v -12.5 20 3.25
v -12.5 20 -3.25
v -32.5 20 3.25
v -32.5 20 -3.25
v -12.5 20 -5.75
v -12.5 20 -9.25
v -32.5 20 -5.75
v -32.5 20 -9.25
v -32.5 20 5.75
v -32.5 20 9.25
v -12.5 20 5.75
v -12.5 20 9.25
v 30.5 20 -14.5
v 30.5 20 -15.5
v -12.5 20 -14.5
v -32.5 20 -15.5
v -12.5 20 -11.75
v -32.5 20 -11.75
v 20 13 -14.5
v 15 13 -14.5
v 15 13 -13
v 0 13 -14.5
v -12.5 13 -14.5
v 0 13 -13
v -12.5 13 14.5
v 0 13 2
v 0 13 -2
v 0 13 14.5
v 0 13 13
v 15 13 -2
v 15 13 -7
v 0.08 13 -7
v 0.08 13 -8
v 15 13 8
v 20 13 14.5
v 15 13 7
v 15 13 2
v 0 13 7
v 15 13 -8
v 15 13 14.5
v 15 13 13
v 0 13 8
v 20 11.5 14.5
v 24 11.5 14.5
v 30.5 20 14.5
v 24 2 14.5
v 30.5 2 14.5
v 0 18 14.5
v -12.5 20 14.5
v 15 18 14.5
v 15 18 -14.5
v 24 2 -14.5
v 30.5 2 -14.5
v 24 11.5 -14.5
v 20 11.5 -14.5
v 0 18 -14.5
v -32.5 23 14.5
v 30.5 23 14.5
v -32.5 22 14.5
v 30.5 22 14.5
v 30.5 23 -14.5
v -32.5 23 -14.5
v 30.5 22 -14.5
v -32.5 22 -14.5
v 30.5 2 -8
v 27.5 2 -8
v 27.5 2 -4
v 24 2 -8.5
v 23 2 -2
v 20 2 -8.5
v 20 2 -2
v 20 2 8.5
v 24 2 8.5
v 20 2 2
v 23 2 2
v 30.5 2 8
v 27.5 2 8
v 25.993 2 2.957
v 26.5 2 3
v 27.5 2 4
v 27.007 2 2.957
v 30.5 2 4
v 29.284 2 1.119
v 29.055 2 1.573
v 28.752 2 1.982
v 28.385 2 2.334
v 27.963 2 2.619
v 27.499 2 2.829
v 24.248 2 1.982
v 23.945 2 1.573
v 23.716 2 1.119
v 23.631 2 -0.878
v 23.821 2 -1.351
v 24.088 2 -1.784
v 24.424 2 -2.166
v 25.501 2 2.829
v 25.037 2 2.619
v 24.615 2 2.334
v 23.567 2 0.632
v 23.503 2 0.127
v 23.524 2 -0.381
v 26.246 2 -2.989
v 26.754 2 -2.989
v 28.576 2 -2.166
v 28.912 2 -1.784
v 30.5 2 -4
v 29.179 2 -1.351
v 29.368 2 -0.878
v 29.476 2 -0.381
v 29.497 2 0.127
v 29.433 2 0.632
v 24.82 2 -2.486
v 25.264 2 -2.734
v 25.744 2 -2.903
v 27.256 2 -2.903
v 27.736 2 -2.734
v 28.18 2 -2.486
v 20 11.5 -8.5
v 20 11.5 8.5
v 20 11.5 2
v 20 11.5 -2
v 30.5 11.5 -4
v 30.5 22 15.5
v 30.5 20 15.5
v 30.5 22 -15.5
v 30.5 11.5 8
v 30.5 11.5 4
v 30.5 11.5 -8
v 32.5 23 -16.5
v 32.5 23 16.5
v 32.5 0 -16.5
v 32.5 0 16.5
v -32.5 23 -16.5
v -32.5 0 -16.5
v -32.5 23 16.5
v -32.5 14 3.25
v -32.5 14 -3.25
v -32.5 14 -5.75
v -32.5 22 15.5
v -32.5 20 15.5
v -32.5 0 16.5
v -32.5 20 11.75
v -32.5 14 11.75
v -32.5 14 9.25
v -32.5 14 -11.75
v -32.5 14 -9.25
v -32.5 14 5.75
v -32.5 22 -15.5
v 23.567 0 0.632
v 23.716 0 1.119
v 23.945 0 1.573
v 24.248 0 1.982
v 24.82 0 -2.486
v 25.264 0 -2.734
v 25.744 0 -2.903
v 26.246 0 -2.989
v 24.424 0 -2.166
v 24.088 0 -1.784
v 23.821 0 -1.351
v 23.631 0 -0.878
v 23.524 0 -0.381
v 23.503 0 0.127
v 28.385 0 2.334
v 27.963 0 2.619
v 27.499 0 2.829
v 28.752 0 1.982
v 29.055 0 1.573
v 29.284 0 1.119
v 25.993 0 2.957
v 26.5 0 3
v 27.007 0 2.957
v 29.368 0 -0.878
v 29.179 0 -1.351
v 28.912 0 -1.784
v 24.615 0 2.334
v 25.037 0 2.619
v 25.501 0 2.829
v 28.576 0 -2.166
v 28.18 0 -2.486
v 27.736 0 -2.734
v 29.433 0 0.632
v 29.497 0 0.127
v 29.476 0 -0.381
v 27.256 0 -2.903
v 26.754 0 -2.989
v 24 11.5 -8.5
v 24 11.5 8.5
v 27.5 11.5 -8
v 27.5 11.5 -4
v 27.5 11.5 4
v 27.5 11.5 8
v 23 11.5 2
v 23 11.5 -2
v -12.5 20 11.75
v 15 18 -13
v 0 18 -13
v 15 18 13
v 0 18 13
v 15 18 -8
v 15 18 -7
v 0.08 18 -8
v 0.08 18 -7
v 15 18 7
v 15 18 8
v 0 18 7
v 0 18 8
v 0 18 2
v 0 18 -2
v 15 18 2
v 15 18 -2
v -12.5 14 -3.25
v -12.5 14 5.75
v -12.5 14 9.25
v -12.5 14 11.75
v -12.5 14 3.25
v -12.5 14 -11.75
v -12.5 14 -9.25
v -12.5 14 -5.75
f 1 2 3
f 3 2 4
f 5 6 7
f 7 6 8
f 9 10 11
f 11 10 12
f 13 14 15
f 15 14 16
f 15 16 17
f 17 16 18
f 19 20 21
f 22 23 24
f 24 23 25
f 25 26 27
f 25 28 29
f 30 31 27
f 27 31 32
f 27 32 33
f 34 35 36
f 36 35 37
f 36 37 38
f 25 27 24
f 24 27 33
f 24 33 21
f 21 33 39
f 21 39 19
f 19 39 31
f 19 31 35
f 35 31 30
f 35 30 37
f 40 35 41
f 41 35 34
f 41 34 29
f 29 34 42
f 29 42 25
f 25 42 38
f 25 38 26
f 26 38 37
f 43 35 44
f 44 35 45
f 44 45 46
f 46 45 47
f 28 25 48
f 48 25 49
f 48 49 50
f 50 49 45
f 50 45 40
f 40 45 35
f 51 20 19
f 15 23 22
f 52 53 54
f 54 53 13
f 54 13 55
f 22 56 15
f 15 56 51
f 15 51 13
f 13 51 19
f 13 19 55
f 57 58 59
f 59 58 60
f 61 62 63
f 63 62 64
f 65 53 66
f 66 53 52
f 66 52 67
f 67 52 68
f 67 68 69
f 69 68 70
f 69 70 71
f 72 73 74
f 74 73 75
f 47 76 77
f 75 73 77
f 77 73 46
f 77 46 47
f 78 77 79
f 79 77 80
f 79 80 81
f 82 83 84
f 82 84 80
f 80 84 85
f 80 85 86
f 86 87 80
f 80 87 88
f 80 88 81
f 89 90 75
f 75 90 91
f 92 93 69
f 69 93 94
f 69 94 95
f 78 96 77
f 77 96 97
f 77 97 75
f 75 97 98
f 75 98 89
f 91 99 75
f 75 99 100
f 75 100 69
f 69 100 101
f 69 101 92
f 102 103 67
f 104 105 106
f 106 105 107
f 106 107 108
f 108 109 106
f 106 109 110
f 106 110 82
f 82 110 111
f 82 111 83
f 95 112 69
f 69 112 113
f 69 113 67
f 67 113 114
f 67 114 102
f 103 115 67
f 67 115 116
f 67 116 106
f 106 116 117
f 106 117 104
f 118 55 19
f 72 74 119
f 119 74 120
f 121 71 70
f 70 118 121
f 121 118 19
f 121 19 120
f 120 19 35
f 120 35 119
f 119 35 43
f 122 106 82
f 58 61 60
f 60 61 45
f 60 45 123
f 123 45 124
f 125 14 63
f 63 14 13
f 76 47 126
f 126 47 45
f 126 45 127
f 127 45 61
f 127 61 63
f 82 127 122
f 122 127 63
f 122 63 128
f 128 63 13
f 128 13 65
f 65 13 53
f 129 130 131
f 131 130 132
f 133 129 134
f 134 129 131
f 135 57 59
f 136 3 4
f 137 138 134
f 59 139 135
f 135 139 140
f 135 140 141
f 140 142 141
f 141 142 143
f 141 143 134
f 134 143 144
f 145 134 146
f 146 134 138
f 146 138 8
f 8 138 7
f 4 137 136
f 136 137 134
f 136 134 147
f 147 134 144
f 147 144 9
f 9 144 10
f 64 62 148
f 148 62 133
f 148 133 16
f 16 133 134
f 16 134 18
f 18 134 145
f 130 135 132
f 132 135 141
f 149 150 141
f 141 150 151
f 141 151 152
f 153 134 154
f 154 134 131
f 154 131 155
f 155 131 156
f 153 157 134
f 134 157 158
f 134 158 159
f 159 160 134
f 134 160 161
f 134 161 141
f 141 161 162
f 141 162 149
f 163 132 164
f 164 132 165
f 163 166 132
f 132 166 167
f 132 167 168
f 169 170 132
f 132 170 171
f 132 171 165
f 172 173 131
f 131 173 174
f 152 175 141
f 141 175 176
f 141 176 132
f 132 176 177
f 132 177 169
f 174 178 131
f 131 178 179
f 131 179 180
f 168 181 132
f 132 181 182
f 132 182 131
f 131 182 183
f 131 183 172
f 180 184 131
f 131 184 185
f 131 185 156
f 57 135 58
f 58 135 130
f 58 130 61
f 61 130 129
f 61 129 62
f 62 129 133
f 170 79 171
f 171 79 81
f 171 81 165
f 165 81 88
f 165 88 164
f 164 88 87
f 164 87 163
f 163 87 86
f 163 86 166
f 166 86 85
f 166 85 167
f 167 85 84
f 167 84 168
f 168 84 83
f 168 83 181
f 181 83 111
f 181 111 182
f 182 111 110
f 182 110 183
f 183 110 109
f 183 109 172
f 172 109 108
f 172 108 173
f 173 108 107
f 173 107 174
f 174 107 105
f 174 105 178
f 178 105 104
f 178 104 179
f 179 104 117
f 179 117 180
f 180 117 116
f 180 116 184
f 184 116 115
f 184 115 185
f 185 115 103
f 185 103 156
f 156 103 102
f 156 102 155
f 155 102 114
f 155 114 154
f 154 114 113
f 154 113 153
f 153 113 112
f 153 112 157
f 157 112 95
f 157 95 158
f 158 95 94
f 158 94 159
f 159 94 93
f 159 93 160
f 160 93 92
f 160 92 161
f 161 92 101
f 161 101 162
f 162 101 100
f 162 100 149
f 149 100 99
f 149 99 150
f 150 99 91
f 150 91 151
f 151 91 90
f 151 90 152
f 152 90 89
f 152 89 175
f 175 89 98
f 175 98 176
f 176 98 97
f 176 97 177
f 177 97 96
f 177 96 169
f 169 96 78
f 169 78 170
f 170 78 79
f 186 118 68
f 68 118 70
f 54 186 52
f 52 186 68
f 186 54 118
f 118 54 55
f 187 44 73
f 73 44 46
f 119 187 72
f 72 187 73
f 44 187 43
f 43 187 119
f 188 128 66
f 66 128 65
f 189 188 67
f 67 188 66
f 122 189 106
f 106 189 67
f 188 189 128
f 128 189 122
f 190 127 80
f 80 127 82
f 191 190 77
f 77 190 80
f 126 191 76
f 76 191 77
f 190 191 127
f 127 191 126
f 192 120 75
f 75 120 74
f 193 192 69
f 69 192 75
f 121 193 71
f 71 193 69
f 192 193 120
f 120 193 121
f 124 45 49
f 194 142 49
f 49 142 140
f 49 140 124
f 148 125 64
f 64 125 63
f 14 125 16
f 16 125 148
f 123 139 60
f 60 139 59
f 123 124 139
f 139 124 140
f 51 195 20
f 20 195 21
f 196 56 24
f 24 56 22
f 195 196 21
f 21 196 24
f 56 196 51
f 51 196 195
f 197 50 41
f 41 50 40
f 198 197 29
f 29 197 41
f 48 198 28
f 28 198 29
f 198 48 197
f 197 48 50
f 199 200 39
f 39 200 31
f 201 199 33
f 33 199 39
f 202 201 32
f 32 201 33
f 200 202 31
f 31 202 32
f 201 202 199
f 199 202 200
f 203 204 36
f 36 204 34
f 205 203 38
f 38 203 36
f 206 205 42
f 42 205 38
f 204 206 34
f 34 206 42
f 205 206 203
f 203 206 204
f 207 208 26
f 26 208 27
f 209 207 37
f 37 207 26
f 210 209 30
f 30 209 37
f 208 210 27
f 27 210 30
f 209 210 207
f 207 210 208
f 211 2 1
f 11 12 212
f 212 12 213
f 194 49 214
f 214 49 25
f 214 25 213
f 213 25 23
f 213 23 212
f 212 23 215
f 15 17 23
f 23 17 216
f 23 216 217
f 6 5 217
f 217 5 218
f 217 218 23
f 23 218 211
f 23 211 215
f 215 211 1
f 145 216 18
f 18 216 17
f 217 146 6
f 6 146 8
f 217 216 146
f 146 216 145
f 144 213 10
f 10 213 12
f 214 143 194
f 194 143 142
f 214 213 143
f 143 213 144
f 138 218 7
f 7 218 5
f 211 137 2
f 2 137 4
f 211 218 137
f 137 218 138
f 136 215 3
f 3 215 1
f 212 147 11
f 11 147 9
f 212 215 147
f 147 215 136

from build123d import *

# Parameters (mm, degrees)
SKETCH1_W            = 65
SKETCH1_H            = 33
BOSS_EXTRUDE1_DEPTH  = 2
SKETCH2_W            = 65
SKETCH2_H            = 33
SKETCH2_W_2          = 61
SKETCH2_H_2          = 29
BOSS_EXTRUDE2_DEPTH  = 21
SKETCH3_W            = 50.5
SKETCH3_H            = 29
BOSS_EXTRUDE3_DEPTH  = 11
SKETCH4_R            = 3
CUT_EXTRUDE1_DEPTH   = 2
SKETCH5_W            = 4
SKETCH5_H            = 6
BOSS_EXTRUDE4_DEPTH  = 9.5
SKETCH6_W            = 4
SKETCH6_H            = 6
BOSS_EXTRUDE5_DEPTH  = 9.5
SKETCH7_W            = 3
SKETCH7_H            = 4
BOSS_EXTRUDE8_DEPTH  = 9.5
SKETCH9_W            = 3
SKETCH9_H            = 4
BOSS_EXTRUDE9_DEPTH  = 9.5
SKETCH10_W           = 3
SKETCH10_H           = 4
BOSS_EXTRUDE10_DEPTH = 9.5
SKETCH11_W           = 2
SKETCH11_H           = 29
CUT_EXTRUDE2_DEPTH   = 3
SKETCH13_W           = 31
SKETCH13_H           = 2
CUT_EXTRUDE3_DEPTH   = 63
SKETCH14_W           = 15
SKETCH14_H           = 1.5
BOSS_EXTRUDE11_DEPTH = 5
SKETCH15_W           = 15
SKETCH15_H           = 1.5
BOSS_EXTRUDE12_DEPTH = 5
SKETCH16_W           = 14.920438195
SKETCH16_H           = 1
BOSS_EXTRUDE13_DEPTH = 5
SKETCH17_W           = 15
SKETCH17_H           = 1
BOSS_EXTRUDE14_DEPTH = 5
SKETCH18_W           = 15
SKETCH18_H           = 4
BOSS_EXTRUDE15_DEPTH = 5
SKETCH19_W           = 18
SKETCH19_H           = 29
BOSS_EXTRUDE16_DEPTH = 7
SKETCH20_W           = 20
SKETCH20_H           = 2.5
CUT_EXTRUDE4_DEPTH   = 6
SKETCH21_W           = 20
SKETCH21_H           = 2.5
CUT_EXTRUDE5_DEPTH   = 6
SKETCH22_W           = 20
SKETCH22_H           = 2.5
CUT_EXTRUDE6_DEPTH   = 6
SKETCH23_W           = 20
SKETCH23_H           = 2.5
CUT_EXTRUDE7_DEPTH   = 6


with BuildPart() as part:
    # Sketch1 → Boss-Extrude1 (new body)
    with BuildSketch(Plane(origin=(0, 0, 0), x_dir=(1, 0, 0), z_dir=(0, 1, 0))):
        Rectangle(SKETCH1_W, SKETCH1_H)
    extrude(amount=BOSS_EXTRUDE1_DEPTH)

    # Sketch2 → Boss-Extrude2 (add)
    with BuildSketch(Plane(origin=(0, 2, 0), x_dir=(1, 0, 0), z_dir=(0, 1, 0))):
        Rectangle(SKETCH2_W, SKETCH2_H)
        Rectangle(SKETCH2_W_2, SKETCH2_H_2, mode=Mode.SUBTRACT)
    extrude(amount=BOSS_EXTRUDE2_DEPTH)

    # Sketch3 → Boss-Extrude3 (add)
    with BuildSketch(Plane(origin=(0, 2, 0), x_dir=(1, 0, 0), z_dir=(0, 1, 0))):
        with Locations((-5.25, 0)):
            Rectangle(SKETCH3_W, SKETCH3_H)
    extrude(amount=BOSS_EXTRUDE3_DEPTH)

    # Sketch4 → Cut-Extrude1 (cut)
    with BuildSketch(Plane(origin=(0, 2, 0), x_dir=(1, 0, 0), z_dir=(0, 1, 0))):
        with Locations((26.5, 0)):
            Circle(SKETCH4_R)
    extrude(amount=-CUT_EXTRUDE1_DEPTH, mode=Mode.SUBTRACT)

    # Sketch5 → Boss-Extrude4 (add)
    with BuildSketch(Plane(origin=(0, 2, 0), x_dir=(1, 0, 0), z_dir=(0, 1, 0))):
        with Locations((22, 11.5)):
            Rectangle(SKETCH5_W, SKETCH5_H)
    extrude(amount=BOSS_EXTRUDE4_DEPTH)

    # Sketch6 → Boss-Extrude5 (add)
    with BuildSketch(Plane(origin=(0, 2, 0), x_dir=(1, 0, 0), z_dir=(0, 1, 0))):
        with Locations((22, -11.5)):
            Rectangle(SKETCH6_W, SKETCH6_H)
    extrude(amount=BOSS_EXTRUDE5_DEPTH)

    # Sketch7 → Boss-Extrude8 (add)
    with BuildSketch(Plane(origin=(0, 2, 0), x_dir=(1, 0, 0), z_dir=(0, 1, 0))):
        with Locations((29, 6)):
            Rectangle(SKETCH7_W, SKETCH7_H)
    extrude(amount=BOSS_EXTRUDE8_DEPTH)

    # Sketch9 → Boss-Extrude9 (add)
    with BuildSketch(Plane(origin=(0, 2, 0), x_dir=(1, 0, 0), z_dir=(0, 1, 0))):
        with Locations((29, -6)):
            Rectangle(SKETCH9_W, SKETCH9_H)
    extrude(amount=BOSS_EXTRUDE9_DEPTH)

    # Sketch10 → Boss-Extrude10 (add)
    with BuildSketch(Plane(origin=(0, 2, 0), x_dir=(1, 0, 0), z_dir=(0, 1, 0))):
        with Locations((21.5, 0)):
            Rectangle(SKETCH10_W, SKETCH10_H)
    extrude(amount=BOSS_EXTRUDE10_DEPTH)

    # Sketch11 → Cut-Extrude2 (cut)
    with BuildSketch(Plane(origin=(0, 23, 0), x_dir=(1, 0, 0), z_dir=(0, 1, 0))):
        with Locations((-31.5, 0)):
            Rectangle(SKETCH11_W, SKETCH11_H)
    extrude(amount=-CUT_EXTRUDE2_DEPTH, mode=Mode.SUBTRACT)

    # Sketch13 → Cut-Extrude3 (cut)
    with BuildSketch(Plane.ZY.offset(32.5)):
        with Locations((0, 21)):
            Rectangle(SKETCH13_W, SKETCH13_H)
    extrude(amount=-CUT_EXTRUDE3_DEPTH, mode=Mode.SUBTRACT)

    # Sketch14 → Boss-Extrude11 (add)
    with BuildSketch(Plane(origin=(0, 13, 0), x_dir=(1, 0, 0), z_dir=(0, 1, 0))):
        with Locations((7.5, 13.75)):
            Rectangle(SKETCH14_W, SKETCH14_H)
    extrude(amount=BOSS_EXTRUDE11_DEPTH)

    # Sketch15 → Boss-Extrude12 (add)
    with BuildSketch(Plane(origin=(0, 13, 0), x_dir=(1, 0, 0), z_dir=(0, 1, 0))):
        with Locations((7.5, -13.75)):
            Rectangle(SKETCH15_W, SKETCH15_H)
    extrude(amount=BOSS_EXTRUDE12_DEPTH)

    # Sketch16 → Boss-Extrude13 (add)
    with BuildSketch(Plane(origin=(0, 13, 0), x_dir=(1, 0, 0), z_dir=(0, 1, 0))):
        with Locations((7.539780903, 7.5)):
            Rectangle(SKETCH16_W, SKETCH16_H)
    extrude(amount=BOSS_EXTRUDE13_DEPTH)

    # Sketch17 → Boss-Extrude14 (add)
    with BuildSketch(Plane(origin=(0, 13, 0), x_dir=(1, 0, 0), z_dir=(0, 1, 0))):
        with Locations((7.5, -7.5)):
            Rectangle(SKETCH17_W, SKETCH17_H)
    extrude(amount=BOSS_EXTRUDE14_DEPTH)

    # Sketch18 → Boss-Extrude15 (add)
    with BuildSketch(Plane(origin=(0, 13, 0), x_dir=(1, 0, 0), z_dir=(0, 1, 0))):
        with Locations((7.5, 0)):
            Rectangle(SKETCH18_W, SKETCH18_H)
    extrude(amount=BOSS_EXTRUDE15_DEPTH)

    # Sketch19 → Boss-Extrude16 (add)
    with BuildSketch(Plane(origin=(0, 13, 0), x_dir=(1, 0, 0), z_dir=(0, 1, 0))):
        with Locations((-21.5, 0)):
            Rectangle(SKETCH19_W, SKETCH19_H)
    extrude(amount=BOSS_EXTRUDE16_DEPTH)

    # Sketch20 → Cut-Extrude4 (cut)
    with BuildSketch(Plane(origin=(0, 20, 0), x_dir=(1, 0, 0), z_dir=(0, 1, 0))):
        with Locations((-22.5, 10.5)):
            Rectangle(SKETCH20_W, SKETCH20_H)
    extrude(amount=-CUT_EXTRUDE4_DEPTH, mode=Mode.SUBTRACT)

    # Sketch21 → Cut-Extrude5 (cut)
    with BuildSketch(Plane(origin=(0, 20, 0), x_dir=(1, 0, 0), z_dir=(0, 1, 0))):
        with Locations((-22.5, -10.5)):
            Rectangle(SKETCH21_W, SKETCH21_H)
    extrude(amount=-CUT_EXTRUDE5_DEPTH, mode=Mode.SUBTRACT)

    # Sketch22 → Cut-Extrude6 (cut)
    with BuildSketch(Plane(origin=(0, 20, 0), x_dir=(1, 0, 0), z_dir=(0, 1, 0))):
        with Locations((-22.5, 4.5)):
            Rectangle(SKETCH22_W, SKETCH22_H)
    extrude(amount=-CUT_EXTRUDE6_DEPTH, mode=Mode.SUBTRACT)

    # Sketch23 → Cut-Extrude7 (cut)
    with BuildSketch(Plane(origin=(0, 20, 0), x_dir=(1, 0, 0), z_dir=(0, 1, 0))):
        with Locations((-22.5, -4.5)):
            Rectangle(SKETCH23_W, SKETCH23_H)
    extrude(amount=-CUT_EXTRUDE7_DEPTH, mode=Mode.SUBTRACT)


solid = part.part
